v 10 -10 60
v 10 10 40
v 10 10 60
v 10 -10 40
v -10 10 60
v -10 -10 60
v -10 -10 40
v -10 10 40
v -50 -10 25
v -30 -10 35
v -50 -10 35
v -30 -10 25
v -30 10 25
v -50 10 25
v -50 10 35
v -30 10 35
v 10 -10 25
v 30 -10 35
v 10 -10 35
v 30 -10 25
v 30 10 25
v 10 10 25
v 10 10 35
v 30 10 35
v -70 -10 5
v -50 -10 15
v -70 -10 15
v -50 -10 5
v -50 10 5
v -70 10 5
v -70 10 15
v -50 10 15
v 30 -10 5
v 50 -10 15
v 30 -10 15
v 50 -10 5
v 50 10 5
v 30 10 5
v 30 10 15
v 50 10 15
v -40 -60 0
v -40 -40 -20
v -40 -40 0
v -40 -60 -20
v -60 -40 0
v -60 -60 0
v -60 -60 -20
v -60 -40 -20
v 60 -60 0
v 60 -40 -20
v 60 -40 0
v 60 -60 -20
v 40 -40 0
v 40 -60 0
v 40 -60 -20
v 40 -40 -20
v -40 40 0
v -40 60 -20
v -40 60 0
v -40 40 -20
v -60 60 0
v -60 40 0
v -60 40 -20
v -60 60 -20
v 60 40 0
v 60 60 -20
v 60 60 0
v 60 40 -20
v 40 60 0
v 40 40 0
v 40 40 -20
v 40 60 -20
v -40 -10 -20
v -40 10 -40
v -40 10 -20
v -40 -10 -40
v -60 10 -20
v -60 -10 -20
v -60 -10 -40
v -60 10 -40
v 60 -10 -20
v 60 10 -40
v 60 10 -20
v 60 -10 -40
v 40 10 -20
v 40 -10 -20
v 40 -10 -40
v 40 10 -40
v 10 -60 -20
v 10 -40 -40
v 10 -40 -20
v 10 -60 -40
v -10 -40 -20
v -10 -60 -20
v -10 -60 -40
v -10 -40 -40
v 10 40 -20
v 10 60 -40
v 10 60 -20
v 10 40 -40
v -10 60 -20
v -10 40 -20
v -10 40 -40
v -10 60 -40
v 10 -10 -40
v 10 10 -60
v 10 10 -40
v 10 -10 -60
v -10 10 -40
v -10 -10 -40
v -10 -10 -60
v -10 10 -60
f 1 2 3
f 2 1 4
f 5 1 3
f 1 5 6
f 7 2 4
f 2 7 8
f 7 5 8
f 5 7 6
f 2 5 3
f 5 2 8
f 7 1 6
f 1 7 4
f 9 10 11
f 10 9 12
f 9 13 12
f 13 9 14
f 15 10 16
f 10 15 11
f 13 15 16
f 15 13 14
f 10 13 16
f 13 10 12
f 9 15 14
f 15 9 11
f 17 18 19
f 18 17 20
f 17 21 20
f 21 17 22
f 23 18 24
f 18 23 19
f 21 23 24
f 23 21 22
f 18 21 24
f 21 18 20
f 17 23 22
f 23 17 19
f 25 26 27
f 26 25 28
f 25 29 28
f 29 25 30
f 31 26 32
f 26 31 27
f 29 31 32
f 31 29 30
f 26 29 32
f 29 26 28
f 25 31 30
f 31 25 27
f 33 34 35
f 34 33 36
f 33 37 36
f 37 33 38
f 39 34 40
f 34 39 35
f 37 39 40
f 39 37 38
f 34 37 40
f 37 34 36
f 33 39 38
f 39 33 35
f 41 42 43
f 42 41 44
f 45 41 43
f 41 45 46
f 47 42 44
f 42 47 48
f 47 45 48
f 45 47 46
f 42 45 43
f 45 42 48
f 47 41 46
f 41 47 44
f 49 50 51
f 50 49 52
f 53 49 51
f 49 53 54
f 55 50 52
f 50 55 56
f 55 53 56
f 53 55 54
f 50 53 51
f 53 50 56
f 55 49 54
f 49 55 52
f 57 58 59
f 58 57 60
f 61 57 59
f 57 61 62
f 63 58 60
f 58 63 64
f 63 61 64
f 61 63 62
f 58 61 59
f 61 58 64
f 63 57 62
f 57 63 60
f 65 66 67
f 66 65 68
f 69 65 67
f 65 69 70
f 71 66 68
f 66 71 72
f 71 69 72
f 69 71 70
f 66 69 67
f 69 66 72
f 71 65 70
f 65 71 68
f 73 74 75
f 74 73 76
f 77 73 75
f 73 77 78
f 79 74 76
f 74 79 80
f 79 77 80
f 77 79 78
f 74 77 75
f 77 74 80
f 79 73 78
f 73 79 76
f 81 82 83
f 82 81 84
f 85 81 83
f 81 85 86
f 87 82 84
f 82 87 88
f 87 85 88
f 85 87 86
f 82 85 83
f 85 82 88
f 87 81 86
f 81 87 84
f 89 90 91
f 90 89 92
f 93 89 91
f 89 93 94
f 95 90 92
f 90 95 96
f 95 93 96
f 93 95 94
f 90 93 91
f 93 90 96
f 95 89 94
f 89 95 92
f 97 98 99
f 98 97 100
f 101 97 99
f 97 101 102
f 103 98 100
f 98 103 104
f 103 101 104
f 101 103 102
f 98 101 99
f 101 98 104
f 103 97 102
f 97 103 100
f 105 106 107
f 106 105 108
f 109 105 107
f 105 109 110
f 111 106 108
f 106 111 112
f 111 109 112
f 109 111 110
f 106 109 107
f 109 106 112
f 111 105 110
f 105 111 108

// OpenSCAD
// Central Block
module central_block() {
    cube([20, 20, 20], center = true);
}

// Side Block
module side_block() {
    hull() {
        translate([-10, -5, 0]) cube([20, 10, 10], center = true);
        translate([-10, 5, 0]) cube([20, 10, 10], center = true);
    }
}

// Connector Block
module connector_block() {
    hull() {
        translate([-10, -5, 0]) cube([20, 10, 10], center = true);
        translate([-10, 5, 0]) cube([20, 10, 10], center = true);
    }
}

// Base Block
module base_block() {
    cube([20, 20, 20], center = true);
}

// Corner Block
module corner_block() {
    cube([20, 20, 20], center = true);
}

// Edge Block
module edge_block() {
    cube([20, 20, 20], center = true);
}

// Assemble the model
module model() {
    // Layer 1: Central Block
    translate([0, 0, 50]) central_block();

    // Layer 2: Connector Blocks
    translate([-30, 0, 30]) connector_block();
    translate([30, 0, 30]) connector_block();

    // Layer 3: Side Blocks
    translate([-50, 0, 10]) side_block();
    translate([50, 0, 10]) side_block();

    // Layer 4: Corner Blocks
    translate([-50, -50, -10]) corner_block();
    translate([50, -50, -10]) corner_block();
    translate([-50, 50, -10]) corner_block();
    translate([50, 50, -10]) corner_block();

    // Layer 5: Edge Blocks
    translate([-50, 0, -30]) edge_block();
    translate([50, 0, -30]) edge_block();
    translate([0, -50, -30]) edge_block();
    translate([0, 50, -30]) edge_block();

    // Layer 6: Base Block
    translate([0, 0, -50]) base_block();
}

// Render the model
model();
